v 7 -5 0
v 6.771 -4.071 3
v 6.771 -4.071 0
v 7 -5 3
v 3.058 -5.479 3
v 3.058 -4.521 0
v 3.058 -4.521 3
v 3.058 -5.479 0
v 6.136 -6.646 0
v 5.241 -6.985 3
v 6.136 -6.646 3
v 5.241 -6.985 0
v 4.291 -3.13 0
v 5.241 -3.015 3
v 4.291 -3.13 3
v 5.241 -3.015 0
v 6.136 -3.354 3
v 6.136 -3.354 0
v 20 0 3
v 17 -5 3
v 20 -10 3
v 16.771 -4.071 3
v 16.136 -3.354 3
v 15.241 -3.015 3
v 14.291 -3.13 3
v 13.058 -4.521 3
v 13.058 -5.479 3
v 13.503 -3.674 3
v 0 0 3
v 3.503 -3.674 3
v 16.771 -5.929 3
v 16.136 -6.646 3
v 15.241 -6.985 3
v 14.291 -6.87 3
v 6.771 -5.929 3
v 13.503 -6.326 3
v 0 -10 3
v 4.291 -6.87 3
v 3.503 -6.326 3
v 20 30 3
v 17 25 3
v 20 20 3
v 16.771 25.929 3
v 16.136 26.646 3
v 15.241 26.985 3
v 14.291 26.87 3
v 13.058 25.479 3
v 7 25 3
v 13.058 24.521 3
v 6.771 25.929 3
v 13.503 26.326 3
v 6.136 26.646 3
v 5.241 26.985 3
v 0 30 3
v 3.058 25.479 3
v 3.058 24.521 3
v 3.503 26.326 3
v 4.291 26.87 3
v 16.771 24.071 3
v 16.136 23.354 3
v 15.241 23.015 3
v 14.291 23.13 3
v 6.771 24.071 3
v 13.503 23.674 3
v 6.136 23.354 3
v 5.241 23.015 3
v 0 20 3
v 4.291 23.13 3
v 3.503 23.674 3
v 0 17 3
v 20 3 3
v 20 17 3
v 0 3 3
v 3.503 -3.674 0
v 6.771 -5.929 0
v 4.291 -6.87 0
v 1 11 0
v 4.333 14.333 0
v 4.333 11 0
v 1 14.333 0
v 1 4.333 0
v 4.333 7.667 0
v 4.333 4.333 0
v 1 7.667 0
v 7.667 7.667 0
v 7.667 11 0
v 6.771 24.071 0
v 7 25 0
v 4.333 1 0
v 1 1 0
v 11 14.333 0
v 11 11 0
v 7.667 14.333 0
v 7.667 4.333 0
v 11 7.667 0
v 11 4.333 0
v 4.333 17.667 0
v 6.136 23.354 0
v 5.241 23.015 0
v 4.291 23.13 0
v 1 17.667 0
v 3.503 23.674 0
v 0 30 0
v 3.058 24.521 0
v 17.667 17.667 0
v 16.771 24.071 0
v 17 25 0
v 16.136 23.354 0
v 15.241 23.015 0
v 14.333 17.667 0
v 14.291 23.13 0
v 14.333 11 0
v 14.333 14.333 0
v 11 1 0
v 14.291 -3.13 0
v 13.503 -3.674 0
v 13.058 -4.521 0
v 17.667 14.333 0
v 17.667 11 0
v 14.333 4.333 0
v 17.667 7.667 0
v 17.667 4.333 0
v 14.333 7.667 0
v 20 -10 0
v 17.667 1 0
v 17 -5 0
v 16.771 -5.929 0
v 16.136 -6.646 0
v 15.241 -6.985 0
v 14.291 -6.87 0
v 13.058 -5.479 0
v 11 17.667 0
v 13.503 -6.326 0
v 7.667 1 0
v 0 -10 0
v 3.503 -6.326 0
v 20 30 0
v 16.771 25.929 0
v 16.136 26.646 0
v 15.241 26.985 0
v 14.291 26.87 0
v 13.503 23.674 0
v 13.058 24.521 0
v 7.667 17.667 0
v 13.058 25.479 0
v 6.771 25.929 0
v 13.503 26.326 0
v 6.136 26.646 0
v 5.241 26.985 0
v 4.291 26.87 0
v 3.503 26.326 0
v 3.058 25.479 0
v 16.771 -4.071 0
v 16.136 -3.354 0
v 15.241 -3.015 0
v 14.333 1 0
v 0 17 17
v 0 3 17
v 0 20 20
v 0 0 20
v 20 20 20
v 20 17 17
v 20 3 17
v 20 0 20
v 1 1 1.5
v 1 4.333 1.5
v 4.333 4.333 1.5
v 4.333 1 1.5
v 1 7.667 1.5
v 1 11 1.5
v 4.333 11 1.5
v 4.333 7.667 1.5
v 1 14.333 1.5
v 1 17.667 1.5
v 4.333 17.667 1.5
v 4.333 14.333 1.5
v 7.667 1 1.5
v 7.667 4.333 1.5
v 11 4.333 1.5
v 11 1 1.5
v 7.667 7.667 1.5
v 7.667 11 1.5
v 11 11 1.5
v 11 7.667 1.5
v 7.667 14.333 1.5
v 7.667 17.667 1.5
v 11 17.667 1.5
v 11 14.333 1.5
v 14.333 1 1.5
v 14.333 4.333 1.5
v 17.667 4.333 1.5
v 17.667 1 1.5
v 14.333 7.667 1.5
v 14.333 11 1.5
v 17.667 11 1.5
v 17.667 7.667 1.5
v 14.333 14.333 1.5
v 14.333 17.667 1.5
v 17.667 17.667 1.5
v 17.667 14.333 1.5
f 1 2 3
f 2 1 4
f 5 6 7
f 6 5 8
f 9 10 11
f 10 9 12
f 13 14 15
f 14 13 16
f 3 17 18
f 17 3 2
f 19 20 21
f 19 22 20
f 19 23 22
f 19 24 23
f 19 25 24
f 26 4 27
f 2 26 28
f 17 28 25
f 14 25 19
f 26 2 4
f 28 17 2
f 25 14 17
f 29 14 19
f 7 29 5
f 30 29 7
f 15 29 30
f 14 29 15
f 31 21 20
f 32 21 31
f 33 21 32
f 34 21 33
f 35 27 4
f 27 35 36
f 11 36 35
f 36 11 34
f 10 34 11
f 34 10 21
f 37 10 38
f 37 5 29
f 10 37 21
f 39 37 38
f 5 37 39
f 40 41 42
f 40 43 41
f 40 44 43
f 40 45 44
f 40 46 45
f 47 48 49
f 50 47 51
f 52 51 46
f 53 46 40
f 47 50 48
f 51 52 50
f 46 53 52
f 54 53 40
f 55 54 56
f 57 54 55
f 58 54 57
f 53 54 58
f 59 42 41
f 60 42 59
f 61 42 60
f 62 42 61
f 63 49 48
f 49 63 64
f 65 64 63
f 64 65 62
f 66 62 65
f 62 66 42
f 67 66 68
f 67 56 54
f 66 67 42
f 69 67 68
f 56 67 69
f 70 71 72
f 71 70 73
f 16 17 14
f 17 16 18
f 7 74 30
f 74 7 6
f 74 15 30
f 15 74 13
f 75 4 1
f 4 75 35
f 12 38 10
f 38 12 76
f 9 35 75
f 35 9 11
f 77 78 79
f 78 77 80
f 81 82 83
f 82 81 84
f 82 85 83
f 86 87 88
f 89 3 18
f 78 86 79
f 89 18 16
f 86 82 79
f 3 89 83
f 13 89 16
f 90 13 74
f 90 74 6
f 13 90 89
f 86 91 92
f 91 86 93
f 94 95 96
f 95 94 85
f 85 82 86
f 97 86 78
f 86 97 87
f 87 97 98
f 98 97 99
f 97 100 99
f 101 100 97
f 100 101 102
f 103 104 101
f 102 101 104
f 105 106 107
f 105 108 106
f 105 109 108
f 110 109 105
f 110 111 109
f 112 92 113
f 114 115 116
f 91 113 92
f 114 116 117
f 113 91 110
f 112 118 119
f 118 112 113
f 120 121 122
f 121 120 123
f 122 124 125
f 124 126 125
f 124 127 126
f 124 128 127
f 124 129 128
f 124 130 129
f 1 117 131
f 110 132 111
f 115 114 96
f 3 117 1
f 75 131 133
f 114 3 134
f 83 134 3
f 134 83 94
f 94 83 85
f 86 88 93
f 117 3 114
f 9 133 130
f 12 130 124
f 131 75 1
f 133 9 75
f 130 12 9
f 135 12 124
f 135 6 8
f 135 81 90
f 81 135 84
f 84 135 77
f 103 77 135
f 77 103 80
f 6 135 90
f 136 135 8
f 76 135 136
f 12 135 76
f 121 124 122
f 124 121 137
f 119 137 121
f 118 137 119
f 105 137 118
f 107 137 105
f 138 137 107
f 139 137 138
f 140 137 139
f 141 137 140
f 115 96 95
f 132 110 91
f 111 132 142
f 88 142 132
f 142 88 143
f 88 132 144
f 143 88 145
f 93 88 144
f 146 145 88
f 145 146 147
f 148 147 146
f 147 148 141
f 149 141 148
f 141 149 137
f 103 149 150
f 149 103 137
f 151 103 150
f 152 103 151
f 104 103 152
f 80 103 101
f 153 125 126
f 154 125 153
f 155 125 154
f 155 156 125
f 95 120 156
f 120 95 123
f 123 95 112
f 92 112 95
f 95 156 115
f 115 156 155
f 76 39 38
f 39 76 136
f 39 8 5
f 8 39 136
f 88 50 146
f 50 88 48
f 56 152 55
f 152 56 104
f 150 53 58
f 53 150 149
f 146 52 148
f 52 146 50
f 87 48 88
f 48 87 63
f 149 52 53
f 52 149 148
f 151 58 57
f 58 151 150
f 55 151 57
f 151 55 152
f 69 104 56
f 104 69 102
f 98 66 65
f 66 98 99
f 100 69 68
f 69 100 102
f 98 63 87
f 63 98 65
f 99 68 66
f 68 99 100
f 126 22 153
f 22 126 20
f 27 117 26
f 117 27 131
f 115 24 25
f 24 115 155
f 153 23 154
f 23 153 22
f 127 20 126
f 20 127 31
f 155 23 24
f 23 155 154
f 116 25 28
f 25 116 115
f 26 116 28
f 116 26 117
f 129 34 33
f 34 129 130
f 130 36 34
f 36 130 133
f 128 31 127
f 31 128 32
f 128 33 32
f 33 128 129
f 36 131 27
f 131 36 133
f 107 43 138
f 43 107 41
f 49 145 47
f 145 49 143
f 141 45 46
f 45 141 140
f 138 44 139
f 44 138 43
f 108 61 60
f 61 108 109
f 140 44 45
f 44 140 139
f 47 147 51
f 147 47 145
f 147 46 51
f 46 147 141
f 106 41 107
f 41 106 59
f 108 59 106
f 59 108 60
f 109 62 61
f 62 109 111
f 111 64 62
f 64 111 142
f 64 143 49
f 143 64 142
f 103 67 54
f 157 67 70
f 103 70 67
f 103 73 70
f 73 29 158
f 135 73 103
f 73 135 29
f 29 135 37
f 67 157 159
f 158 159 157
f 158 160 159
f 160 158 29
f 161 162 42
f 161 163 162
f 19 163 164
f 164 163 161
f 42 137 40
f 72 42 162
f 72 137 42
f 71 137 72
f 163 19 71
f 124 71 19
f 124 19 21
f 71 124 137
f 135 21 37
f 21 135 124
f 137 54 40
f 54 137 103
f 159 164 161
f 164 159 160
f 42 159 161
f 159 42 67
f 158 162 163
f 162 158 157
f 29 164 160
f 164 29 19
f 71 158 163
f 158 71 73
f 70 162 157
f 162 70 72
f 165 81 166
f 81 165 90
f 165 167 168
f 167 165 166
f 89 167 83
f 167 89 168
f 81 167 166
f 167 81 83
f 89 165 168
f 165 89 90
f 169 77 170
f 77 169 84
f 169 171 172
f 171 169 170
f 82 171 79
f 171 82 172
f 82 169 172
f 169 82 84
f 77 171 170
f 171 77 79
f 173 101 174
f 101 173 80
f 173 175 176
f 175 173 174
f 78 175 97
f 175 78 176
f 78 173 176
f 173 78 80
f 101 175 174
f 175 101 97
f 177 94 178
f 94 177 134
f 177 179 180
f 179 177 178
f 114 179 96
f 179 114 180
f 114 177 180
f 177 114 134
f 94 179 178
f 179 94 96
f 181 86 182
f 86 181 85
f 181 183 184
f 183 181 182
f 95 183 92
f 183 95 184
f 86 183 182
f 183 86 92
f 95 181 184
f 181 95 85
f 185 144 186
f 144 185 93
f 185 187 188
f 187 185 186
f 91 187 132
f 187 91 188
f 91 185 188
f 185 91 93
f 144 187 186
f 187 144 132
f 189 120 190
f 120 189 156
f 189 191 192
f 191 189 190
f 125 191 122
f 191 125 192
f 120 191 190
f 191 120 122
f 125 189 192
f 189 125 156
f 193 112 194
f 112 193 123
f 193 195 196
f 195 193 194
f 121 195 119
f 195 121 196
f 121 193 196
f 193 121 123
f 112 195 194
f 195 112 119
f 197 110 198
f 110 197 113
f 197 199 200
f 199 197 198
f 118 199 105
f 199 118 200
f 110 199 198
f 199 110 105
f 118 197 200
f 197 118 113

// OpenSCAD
// Horizontal Mechanical Switch Mount
// Christopher Bero - csb0019@uah.edu
// CPE 496 - 2016

$fs = 1; // Minimum fragment size
interiorSize = 14; // Size of one side of the mounting hold for the switch
exteriorSize = 20; // Size of area around mounting hole
wallThickness = (exteriorSize - interiorSize)/2; // General wall thickness

// Area to be subtracted from the shell to make a mount point for the switch
module mountCavity()
{
    translate([0, wallThickness, wallThickness]) {
        cube([wallThickness, interiorSize, interiorSize]);
    }
}

// Exterior profile of the entire mount
module mountShell()
{
    holePlate=exteriorSize*2;
	holeDiam = 4;
	holeOffset = (wallThickness + (holeDiam/2));
    union() {
        *cube([wallThickness, exteriorSize, exteriorSize]); // Face plate
		translate([0, 0, (exteriorSize-wallThickness)])
			cube([exteriorSize, exteriorSize, wallThickness]); // Face plate
        // Shift bottom mounting plate
		translate([0, -((holePlate-exteriorSize)/2), 0])
            difference() {
                cube([exteriorSize, holePlate, wallThickness]); // Bottom plate
				// Distribute holes
				translate([holeOffset, holeOffset, 0]) {
					for (xi=[0:1]) {
						for (yi=[0:1]) {
							translate([xi*(exteriorSize-(holeOffset*2)), yi*(holePlate-(holeOffset*2)), 0])
							cylinder(wallThickness, d=holeDiam);
						}
					}
				}
            }
        cube([exteriorSize, wallThickness, exteriorSize]); // Right plate
        translate([0, exteriorSize-wallThickness, 0]) {
            cube([exteriorSize, wallThickness, exteriorSize]); // Left plate
        }
        *cube([]); // Mounting hole plate
    }
}

module antiWarp(X, Y, Z, buffer, rows, cols)
{
	width=((X-(buffer*2))/(cols*2));
	height=((Y-(buffer*2))/(rows*2));
	translate([buffer, buffer, 0])
	{
		for (xcount = [0:(cols-1)] )
		{
			for (ycount = [0:(rows-1)])
			{
				translate([xcount*(width*2), ycount*(height*2), 0])
					cube([width, height, Z]);
			}
		}
	}
}

difference() {
    mountShell();
    *mountCavity();
	antiWarp(exteriorSize+2, exteriorSize+2, 1.5, 1, 3, 3);
}



//minkowski() {
//	cylinder(h=wallThickness, r=2);
//	mountShell();
//}
